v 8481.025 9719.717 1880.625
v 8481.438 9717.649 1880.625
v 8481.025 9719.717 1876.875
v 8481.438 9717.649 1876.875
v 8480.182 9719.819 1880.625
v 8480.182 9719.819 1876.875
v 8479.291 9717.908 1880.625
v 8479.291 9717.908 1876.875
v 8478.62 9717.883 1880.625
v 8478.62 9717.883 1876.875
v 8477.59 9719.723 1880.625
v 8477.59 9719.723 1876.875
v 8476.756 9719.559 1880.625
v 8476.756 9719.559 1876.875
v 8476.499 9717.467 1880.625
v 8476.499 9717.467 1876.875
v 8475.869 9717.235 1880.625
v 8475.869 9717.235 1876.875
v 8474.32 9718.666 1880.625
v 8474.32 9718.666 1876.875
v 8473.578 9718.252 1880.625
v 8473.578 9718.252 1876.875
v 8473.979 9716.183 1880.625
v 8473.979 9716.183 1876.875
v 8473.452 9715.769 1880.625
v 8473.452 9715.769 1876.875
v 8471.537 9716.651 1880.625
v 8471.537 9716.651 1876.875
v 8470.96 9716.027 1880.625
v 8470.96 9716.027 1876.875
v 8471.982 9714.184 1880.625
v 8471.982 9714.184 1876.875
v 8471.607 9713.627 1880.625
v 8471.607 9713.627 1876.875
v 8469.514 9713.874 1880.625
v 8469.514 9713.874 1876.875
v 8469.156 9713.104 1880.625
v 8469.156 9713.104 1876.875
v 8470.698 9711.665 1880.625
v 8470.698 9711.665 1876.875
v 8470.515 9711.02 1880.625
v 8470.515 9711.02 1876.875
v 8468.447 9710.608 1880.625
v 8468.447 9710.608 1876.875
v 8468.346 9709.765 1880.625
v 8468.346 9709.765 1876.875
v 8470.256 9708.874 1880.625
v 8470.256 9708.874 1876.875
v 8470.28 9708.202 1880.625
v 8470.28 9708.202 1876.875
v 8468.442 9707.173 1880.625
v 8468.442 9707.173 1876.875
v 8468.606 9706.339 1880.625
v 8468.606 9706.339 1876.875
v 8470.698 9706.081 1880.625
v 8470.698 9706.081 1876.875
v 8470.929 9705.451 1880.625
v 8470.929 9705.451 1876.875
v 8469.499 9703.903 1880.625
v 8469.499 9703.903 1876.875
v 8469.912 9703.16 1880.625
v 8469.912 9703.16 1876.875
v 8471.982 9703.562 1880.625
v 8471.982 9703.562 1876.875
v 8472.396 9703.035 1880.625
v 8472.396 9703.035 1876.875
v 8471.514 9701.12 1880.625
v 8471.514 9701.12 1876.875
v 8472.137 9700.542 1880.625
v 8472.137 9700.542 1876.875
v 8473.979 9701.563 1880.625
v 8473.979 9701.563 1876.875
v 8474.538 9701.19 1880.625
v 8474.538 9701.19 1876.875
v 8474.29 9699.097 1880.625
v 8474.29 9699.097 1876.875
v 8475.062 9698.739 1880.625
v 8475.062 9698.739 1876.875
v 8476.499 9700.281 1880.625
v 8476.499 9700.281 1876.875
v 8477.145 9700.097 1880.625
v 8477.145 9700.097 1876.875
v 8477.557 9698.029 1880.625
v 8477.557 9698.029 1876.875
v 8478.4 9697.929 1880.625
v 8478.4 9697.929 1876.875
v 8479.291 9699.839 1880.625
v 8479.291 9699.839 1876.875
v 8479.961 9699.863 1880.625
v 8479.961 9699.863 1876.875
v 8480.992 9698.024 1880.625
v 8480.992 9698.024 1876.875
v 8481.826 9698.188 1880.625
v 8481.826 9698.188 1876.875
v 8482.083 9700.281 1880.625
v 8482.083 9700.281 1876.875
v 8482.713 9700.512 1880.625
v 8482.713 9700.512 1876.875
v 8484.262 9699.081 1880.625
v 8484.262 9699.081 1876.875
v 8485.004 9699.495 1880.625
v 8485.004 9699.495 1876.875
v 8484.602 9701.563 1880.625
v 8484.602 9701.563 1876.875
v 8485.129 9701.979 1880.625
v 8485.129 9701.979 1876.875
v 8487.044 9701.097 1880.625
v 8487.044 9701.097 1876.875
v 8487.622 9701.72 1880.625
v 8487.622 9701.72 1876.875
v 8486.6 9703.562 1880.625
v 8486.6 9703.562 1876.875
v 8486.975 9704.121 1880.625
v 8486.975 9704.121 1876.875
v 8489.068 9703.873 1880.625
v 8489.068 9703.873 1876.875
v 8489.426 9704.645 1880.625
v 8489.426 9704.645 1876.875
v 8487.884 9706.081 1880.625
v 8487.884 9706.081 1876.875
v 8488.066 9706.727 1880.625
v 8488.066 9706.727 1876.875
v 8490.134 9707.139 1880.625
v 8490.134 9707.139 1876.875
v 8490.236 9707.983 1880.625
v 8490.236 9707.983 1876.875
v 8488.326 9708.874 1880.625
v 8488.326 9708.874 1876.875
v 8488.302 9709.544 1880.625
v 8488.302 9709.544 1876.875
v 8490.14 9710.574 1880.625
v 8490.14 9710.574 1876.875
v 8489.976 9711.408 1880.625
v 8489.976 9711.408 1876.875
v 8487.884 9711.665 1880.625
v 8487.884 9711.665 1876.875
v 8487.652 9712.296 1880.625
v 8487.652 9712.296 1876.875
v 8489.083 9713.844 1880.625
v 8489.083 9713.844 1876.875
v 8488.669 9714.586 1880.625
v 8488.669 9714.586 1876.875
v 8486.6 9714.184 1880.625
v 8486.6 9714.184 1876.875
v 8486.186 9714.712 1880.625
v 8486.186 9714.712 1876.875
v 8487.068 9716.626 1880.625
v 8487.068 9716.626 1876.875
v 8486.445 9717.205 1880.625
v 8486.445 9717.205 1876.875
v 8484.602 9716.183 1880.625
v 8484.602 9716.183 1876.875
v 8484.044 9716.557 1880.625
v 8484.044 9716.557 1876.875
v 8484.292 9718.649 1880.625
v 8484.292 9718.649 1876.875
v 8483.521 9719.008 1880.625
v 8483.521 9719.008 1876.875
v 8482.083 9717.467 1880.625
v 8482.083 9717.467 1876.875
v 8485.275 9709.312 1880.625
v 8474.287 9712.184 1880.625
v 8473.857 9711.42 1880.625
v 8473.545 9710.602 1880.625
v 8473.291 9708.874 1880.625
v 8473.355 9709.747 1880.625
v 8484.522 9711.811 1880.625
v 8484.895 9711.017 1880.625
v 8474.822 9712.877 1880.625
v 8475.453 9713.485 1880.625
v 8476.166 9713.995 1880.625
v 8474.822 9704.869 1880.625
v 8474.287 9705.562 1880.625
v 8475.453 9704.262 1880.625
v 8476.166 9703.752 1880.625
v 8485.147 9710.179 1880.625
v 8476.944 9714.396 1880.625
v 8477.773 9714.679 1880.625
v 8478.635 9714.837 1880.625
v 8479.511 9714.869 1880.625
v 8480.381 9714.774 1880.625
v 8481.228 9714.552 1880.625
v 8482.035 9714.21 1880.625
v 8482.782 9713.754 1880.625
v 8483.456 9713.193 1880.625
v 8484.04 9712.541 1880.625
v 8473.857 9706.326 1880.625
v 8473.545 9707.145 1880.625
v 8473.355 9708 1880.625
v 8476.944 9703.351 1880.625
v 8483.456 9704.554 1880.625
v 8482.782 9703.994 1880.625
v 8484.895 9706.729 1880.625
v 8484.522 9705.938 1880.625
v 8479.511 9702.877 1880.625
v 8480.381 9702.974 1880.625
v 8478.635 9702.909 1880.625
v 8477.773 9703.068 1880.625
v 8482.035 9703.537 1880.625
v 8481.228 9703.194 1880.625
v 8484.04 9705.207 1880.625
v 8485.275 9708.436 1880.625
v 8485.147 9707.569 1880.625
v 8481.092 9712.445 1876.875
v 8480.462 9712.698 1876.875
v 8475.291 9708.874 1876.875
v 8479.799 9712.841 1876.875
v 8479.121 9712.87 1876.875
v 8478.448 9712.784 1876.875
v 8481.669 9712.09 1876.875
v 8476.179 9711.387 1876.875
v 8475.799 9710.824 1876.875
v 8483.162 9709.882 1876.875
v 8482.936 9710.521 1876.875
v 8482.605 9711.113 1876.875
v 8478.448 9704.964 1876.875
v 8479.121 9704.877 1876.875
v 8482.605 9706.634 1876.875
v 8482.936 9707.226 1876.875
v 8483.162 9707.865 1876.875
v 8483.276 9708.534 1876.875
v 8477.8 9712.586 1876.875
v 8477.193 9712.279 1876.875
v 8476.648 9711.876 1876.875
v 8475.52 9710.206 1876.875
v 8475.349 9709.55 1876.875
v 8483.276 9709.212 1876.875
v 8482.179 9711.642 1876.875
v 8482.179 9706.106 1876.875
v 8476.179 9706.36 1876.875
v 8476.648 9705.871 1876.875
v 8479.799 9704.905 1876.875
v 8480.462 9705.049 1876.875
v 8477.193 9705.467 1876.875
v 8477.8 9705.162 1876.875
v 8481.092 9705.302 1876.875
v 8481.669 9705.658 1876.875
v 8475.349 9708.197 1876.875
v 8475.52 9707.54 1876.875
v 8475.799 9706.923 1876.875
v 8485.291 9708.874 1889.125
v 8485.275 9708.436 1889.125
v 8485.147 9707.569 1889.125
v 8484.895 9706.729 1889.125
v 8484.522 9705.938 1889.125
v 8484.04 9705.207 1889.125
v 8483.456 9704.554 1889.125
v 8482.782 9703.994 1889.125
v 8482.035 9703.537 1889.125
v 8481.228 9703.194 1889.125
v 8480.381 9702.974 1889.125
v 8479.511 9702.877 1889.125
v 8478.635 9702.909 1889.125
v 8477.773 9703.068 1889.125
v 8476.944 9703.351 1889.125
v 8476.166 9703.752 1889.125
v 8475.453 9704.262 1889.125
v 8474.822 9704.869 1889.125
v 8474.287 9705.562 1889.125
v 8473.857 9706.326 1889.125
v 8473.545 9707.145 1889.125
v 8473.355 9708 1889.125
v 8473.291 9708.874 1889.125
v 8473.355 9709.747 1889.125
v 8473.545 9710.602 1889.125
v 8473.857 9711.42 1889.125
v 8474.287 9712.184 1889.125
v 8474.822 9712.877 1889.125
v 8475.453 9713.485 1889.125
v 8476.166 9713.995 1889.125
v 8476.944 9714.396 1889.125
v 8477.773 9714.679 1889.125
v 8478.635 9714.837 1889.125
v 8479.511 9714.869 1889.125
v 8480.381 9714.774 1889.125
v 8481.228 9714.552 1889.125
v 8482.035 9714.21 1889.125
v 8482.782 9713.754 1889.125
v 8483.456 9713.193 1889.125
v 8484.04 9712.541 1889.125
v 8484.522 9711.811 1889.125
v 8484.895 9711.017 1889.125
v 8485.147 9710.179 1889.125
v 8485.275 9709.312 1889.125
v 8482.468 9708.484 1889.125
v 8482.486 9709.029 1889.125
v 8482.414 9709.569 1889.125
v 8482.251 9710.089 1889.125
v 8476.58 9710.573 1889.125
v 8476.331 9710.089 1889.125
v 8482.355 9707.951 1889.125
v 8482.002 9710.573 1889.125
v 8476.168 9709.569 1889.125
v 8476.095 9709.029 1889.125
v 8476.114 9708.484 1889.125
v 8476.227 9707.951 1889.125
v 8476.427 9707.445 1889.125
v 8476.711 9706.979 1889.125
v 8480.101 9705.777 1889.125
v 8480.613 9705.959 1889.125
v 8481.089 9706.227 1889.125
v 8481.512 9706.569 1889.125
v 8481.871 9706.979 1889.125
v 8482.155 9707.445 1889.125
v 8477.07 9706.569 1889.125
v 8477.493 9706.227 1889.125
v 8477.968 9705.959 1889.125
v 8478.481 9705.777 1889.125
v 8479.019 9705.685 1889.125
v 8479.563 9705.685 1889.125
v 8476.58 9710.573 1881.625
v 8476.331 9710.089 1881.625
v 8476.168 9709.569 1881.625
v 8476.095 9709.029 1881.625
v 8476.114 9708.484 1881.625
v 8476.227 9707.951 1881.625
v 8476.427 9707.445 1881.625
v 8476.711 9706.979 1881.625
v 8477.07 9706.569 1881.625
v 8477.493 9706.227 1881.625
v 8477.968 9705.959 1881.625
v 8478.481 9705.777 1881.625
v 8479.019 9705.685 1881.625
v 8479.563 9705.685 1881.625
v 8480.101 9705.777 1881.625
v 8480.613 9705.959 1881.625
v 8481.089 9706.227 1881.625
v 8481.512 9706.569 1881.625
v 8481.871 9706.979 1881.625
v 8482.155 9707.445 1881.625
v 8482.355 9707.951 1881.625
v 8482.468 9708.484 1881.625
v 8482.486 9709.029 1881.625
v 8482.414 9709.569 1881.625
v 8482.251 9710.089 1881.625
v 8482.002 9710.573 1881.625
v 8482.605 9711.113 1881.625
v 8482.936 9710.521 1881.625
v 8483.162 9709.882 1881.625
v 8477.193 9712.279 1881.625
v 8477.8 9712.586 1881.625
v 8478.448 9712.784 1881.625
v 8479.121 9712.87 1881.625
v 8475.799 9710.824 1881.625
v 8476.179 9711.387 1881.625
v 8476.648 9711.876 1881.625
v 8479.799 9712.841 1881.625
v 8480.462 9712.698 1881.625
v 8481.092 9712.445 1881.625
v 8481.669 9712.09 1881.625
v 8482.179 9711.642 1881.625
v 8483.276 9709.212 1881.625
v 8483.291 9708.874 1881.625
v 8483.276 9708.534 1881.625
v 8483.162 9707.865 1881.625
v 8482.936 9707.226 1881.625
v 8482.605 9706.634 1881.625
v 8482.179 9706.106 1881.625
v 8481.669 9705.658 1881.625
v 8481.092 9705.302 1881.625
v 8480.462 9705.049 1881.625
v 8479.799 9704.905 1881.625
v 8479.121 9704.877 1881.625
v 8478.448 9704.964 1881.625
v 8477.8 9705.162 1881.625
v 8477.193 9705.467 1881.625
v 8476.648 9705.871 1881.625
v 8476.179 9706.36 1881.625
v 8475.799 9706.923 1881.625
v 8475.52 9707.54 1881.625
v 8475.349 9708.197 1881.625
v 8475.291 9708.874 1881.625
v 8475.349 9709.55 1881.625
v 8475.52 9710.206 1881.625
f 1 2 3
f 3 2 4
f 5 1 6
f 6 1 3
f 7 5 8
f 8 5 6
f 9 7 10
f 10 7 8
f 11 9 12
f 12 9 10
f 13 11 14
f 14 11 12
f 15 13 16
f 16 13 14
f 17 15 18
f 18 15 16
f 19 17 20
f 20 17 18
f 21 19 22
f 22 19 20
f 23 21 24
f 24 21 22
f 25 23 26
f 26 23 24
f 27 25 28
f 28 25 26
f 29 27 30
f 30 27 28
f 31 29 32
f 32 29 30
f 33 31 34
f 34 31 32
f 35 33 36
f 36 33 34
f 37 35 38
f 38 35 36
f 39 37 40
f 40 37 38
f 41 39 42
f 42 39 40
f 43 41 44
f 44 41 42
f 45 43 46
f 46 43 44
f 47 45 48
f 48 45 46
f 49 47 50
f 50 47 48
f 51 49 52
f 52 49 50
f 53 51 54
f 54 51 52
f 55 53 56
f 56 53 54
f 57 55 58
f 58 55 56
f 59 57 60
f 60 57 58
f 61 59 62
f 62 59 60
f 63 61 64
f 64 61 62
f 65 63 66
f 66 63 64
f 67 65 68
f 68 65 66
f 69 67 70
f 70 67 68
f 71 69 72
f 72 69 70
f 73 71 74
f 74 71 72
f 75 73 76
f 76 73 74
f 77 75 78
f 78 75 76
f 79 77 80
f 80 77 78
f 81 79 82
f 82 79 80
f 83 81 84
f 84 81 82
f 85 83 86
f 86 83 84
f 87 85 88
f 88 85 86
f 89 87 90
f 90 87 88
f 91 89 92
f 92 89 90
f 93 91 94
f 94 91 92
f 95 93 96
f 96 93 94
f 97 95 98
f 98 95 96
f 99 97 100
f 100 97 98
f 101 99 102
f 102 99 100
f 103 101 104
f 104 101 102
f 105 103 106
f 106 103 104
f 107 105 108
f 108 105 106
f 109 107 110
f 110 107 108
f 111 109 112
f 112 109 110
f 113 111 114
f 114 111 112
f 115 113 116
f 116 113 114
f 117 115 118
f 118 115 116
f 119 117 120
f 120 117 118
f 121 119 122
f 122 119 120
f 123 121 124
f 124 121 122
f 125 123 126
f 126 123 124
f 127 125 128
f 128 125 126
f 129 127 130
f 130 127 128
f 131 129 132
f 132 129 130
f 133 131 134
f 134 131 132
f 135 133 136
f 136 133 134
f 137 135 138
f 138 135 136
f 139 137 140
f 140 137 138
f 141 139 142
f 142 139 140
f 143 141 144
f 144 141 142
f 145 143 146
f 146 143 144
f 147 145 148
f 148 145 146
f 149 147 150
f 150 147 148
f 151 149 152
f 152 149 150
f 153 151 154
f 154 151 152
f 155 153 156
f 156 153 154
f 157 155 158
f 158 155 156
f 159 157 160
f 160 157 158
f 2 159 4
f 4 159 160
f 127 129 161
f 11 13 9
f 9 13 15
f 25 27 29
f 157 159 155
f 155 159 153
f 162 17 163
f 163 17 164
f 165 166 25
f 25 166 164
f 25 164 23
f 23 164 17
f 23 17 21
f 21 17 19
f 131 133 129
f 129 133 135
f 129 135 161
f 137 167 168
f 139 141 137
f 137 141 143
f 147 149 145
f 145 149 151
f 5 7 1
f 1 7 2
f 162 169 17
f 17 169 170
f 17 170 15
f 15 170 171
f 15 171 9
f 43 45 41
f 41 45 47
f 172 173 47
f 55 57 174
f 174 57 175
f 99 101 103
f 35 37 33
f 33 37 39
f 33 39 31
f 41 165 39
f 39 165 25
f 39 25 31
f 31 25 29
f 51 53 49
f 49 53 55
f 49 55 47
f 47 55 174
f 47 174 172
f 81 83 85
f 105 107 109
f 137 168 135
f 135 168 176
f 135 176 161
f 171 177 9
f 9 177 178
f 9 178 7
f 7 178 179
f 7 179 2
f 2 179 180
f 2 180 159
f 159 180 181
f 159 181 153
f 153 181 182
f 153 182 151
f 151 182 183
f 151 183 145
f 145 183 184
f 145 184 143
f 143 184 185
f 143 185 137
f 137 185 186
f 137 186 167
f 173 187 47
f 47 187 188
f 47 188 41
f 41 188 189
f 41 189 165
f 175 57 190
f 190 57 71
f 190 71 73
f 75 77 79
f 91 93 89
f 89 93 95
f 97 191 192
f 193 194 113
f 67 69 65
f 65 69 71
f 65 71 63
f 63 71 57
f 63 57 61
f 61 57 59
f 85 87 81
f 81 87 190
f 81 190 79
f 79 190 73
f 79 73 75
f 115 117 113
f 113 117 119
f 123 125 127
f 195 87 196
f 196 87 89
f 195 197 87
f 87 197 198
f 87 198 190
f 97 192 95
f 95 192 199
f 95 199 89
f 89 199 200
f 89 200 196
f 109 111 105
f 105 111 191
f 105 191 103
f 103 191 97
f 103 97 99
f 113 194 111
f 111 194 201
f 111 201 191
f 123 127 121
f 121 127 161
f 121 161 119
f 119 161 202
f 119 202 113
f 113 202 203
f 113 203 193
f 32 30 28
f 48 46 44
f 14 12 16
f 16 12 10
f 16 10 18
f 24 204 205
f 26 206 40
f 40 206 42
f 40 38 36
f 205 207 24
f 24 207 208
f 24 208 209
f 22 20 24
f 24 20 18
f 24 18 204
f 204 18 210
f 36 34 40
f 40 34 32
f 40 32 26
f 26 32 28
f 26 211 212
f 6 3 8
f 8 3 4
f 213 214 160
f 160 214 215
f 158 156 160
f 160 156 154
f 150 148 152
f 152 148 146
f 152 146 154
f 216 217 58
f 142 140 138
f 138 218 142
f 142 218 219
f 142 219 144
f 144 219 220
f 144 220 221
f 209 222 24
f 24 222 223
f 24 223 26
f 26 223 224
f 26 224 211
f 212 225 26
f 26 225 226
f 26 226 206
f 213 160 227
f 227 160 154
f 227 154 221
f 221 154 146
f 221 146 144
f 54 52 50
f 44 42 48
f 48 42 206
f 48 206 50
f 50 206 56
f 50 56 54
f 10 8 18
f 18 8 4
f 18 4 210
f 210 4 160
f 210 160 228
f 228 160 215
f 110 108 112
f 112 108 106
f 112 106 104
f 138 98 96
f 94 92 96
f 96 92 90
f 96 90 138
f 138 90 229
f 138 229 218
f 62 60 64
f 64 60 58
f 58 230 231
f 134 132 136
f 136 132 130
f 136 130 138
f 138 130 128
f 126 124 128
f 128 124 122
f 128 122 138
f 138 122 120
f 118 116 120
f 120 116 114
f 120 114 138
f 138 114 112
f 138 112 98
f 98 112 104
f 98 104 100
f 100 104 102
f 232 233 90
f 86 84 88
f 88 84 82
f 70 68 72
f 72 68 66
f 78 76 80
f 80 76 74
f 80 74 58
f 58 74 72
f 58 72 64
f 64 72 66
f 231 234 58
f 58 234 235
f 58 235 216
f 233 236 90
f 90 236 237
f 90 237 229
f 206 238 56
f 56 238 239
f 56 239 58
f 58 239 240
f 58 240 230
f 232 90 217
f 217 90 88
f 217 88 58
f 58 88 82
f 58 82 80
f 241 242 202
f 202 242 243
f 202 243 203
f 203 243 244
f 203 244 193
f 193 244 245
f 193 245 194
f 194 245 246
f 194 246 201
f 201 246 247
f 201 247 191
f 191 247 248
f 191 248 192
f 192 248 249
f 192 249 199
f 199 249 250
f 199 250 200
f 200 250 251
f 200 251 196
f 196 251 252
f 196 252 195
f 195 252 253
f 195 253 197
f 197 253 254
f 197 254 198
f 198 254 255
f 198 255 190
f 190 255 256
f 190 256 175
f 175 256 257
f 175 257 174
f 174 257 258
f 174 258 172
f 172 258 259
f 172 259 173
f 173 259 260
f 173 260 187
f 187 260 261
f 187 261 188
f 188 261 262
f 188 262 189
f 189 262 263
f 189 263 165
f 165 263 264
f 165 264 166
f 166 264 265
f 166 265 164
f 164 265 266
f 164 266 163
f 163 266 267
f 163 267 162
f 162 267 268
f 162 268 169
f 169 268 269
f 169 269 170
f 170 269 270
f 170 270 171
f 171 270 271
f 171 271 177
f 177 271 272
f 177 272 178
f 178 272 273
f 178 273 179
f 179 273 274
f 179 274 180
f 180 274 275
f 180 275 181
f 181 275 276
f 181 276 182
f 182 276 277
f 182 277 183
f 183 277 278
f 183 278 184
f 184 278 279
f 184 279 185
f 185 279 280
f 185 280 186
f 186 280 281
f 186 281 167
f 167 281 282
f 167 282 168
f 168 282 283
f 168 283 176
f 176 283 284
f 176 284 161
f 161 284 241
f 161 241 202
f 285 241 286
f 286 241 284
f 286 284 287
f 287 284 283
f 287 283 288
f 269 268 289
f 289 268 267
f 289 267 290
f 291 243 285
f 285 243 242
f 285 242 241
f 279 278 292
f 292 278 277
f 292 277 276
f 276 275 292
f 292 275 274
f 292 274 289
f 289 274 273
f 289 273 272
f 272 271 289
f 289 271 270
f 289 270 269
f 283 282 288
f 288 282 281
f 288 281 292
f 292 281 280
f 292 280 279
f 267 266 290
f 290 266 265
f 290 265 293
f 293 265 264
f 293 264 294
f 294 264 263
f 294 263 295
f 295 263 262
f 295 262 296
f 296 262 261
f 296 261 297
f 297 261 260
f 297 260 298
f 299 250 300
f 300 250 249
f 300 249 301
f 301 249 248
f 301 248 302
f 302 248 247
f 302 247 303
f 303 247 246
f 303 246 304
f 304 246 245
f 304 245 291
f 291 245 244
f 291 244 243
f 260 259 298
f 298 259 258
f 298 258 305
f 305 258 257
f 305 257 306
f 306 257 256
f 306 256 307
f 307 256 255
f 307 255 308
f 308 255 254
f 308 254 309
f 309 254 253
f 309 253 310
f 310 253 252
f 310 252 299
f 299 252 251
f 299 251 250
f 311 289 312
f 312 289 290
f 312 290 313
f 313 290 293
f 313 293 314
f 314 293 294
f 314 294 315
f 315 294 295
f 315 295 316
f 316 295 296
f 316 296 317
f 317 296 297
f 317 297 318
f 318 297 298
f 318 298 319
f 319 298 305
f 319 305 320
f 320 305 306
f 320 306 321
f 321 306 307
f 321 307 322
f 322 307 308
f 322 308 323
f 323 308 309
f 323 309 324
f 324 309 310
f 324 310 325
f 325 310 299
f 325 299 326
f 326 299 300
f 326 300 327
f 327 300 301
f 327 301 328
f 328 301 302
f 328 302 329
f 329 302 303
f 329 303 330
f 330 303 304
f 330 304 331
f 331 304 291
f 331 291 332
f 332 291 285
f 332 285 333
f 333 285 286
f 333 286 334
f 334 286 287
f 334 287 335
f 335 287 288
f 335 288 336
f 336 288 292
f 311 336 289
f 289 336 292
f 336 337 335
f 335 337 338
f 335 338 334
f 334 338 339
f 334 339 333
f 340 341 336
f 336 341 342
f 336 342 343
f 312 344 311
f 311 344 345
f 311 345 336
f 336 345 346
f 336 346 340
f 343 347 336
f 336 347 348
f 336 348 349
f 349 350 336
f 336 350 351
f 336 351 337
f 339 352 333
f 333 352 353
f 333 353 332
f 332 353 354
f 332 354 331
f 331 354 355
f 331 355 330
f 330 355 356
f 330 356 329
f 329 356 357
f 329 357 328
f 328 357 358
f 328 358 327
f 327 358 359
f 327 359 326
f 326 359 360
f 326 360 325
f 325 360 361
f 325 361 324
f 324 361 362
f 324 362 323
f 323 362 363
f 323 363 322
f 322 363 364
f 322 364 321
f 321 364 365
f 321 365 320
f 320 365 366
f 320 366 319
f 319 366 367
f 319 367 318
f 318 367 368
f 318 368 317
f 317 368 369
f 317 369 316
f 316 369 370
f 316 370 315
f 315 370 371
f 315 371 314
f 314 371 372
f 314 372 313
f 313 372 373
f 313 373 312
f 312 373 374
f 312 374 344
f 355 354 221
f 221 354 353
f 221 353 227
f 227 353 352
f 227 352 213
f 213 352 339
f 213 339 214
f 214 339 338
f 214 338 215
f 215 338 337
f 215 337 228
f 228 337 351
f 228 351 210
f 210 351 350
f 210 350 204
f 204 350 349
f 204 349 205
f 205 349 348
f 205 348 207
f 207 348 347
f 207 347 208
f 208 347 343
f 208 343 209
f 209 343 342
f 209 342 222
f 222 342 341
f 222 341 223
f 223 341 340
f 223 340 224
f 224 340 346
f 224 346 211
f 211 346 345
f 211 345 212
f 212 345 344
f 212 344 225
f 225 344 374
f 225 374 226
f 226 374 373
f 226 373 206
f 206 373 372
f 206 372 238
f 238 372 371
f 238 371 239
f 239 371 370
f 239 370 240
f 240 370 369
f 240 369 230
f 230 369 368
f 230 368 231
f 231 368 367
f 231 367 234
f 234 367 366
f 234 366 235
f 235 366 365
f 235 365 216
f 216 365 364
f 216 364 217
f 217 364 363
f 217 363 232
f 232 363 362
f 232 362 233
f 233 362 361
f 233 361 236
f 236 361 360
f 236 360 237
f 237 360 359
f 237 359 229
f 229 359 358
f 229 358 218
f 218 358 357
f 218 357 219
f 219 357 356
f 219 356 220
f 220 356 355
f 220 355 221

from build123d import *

# Parameters (mm, degrees)
BOSS_EXTRUDE1_DEPTH = 3750
SCALE1_SCALE        = 0.001
BOSS_EXTRUDE2_DEPTH = 3.75
SKETCH7_R           = 6
BOSS_EXTRUDE4_DEPTH = 8.5
CUT_EXTRUDE2_DEPTH  = 7.5
SKETCH9_R           = 4
CUT_EXTRUDE3_DEPTH  = 4.75


# Read off the part's stored shape, not the designer's step: Imported1
with BuildPart() as part:
    # Sketch1 → Boss-Extrude1 (new body)
    with BuildSketch(Plane.XY):
        Polygon((-1706.06803894, 17555.067062378), (-569.962084293, 15778.41758728), (-1006.988286972, 15208.873748779), (-3063.715457916, 15425.035476685), (-3388.391971588, 14641.19720459), (-1831.166863441, 13219.130516052), (-2105.892896652, 12555.883407593), (-4148.485660553, 12232.358932495), (-4259.226799011, 11391.19720459), (-2387.004852295, 10420.625686646), (-2480.708837509, 9708.873748779), (-4369.967937469, 8867.712020874), (-4259.226799011, 8026.550292969), (-2199.596881866, 7573.616504669), (-2105.892896652, 6861.864089966), (-3713.068246841, 5560.388088226), (-3388.391971588, 4776.549816132), (-1281.714439392, 4872.121334076), (-1006.988286972, 4208.873748779), (-2222.553491592, 2535.776615143), (-1706.06803894, 1862.679600716), (304.090321064, 2500.242710114), (741.116523743, 1930.699110031), (0, 0), (673.097014427, -516.485512257), (2449.747562408, 619.62044239), (3019.291162491, 182.594239712), (2803.129196167, -1874.132990837), (3586.967229843, -2198.8093853), (5009.034156799, -641.584277153), (5672.281742096, -916.310429573), (5995.805263519, -2958.903074265), (6836.967468262, -3069.644212723), (7807.538509369, -1197.422385216), (8519.290924072, -1291.12637043), (9360.452651978, -3180.385351181), (10201.615333557, -3069.644212723), (10654.54864502, -1010.014414787), (11366.300582886, -916.310429573), (12667.777061462, -2523.485660553), (13451.615333557, -2198.8093853), (13356.043815613, -92.131927609), (14019.290924072, 182.594239712), (15692.388534546, -1032.971024513), (16365.48614502, -516.485512257), (15727.922439575, 1493.672847748), (16297.466278076, 1930.699110031), (18228.164672852, 1189.582586288), (18744.649887085, 1862.679600716), (17608.543395996, 3639.330148697), (18045.570373535, 4208.873748779), (20102.296829224, 3992.711782455), (20426.973342896, 4776.549816132), (18869.749069214, 6198.616504669), (19144.47593689, 6861.864089966), (21187.06703186, 7185.388088226), (21297.80960083, 8026.550292969), (19425.586700439, 8997.120857239), (19519.290924072, 9708.873748779), (21408.550262451, 10550.035476685), (21297.80960083, 11391.19720459), (19238.178253174, 11844.130516052), (19144.47593689, 12555.883407593), (20751.649856567, 13857.358932495), (20426.973342896, 14641.19720459), (18320.297241211, 14545.625686646), (18045.570373535, 15208.873748779), (19261.135101318, 16881.971359253), (18744.649887085, 17555.067062378), (16734.491348267, 16917.505264282), (16297.466278076, 17487.049102783), (17038.581848145, 19417.747497559), (16365.48614502, 19934.232711792), (14588.834762573, 18798.126220703), (14019.290924072, 19235.153198242), (14235.452651978, 21291.879653931), (13451.615333557, 21616.556167603), (12029.54864502, 20059.331893921), (11366.300582886, 20334.056854248), (11042.777061462, 22376.649856567), (10201.615333557, 22487.392425537), (9231.043815613, 20615.169525146), (8519.290924072, 20708.873748779), (7678.129196167, 22598.133087158), (6836.967468262, 22487.392425537), (6384.034156799, 20427.761077881), (5672.281742096, 20334.056854248), (4370.805263519, 21941.232681274), (3586.967229843, 21616.556167603), (3682.538747787, 19509.880065918), (3019.291162491, 19235.153198242), (1346.194028854, 20450.717926025), (673.097014427, 19934.232711792), (1310.660123825, 17924.074172974), (741.116523743, 17487.049102783), (-1189.582586288, 18228.164672852), align=None)
    extrude(amount=BOSS_EXTRUDE1_DEPTH)


with BuildPart() as part_1:
    # Scale1: scaled about (8519.290960158, 9708.873493624, 1875)
    add(part.part.scale(SCALE1_SCALE).moved(Location((8510.771669198, 9699.16462013, 1873.125))))


with BuildPart() as body_2:
    # Sketch4 → Boss-Extrude2 (new body)
    with BuildSketch(Plane.XY.offset(1876.875)):
        Polygon((8482.082875407, 9717.46612407), (8483.52052795, 9719.007817674), (8484.291694952, 9718.650324381), (8484.044201424, 9716.556903507), (8484.601498068, 9716.182821727), (8486.44519641, 9717.204800407), (8487.06814831, 9716.626500372), (8486.185865351, 9714.712018515), (8486.600288328, 9714.184031467), (8488.669558431, 9714.586256829), (8489.083316356, 9713.843758089), (8487.65260797, 9712.295618071), (8487.883590672, 9711.665408806), (8489.975877959, 9711.40850823), (8490.139940401, 9710.574491734), (8488.300854292, 9709.544236288), (8488.325786523, 9708.873494079), (8490.236283338, 9707.982614784), (8490.134590722, 9707.138719878), (8488.067149452, 9706.727197584), (8487.883590672, 9706.081579353), (8489.425284275, 9704.64392681), (8489.067790982, 9703.872759808), (8486.974370108, 9704.120253336), (8486.600288328, 9703.562956692), (8487.622267008, 9701.71925835), (8487.043966973, 9701.09630645), (8485.129485116, 9701.978589409), (8484.601498068, 9701.564166432), (8485.00372343, 9699.494896329), (8484.26122469, 9699.081138404), (8482.713084672, 9700.51184679), (8482.082875407, 9700.280864088), (8481.825974831, 9698.188576801), (8480.991958335, 9698.024514359), (8479.961702889, 9699.863600468), (8479.29096068, 9699.838668237), (8478.400081385, 9697.928171422), (8477.556186479, 9698.029864038), (8477.144664185, 9700.097305308), (8476.499045954, 9700.280864088), (8475.061393411, 9698.739170485), (8474.290226409, 9699.096663778), (8474.537719937, 9701.190084652), (8473.980423293, 9701.564166432), (8472.136724951, 9700.542187752), (8471.513773051, 9701.120487787), (8472.39605601, 9703.034969644), (8471.981633033, 9703.562956692), (8469.91236293, 9703.16073133), (8469.498605005, 9703.90323007), (8470.929313391, 9705.451370088), (8470.698330689, 9706.081579353), (8468.606043402, 9706.338479929), (8468.44198096, 9707.172496425), (8470.281067069, 9708.202751871), (8470.256134838, 9708.873494079), (8468.345638023, 9709.764373375), (8468.447330639, 9710.608268281), (8470.514771909, 9711.019790575), (8470.698330689, 9711.665408806), (8469.156637086, 9713.103061349), (8469.514130379, 9713.874228351), (8471.607551253, 9713.626734823), (8471.981633033, 9714.184031467), (8470.959654353, 9716.027729809), (8471.537954388, 9716.650681709), (8473.452436245, 9715.76839875), (8473.980423293, 9716.182821727), (8473.578197931, 9718.25209183), (8474.320696671, 9718.665849755), (8475.868836689, 9717.235141369), (8476.499045954, 9717.46612407), (8476.75594653, 9719.558411358), (8477.589963026, 9719.7224738), (8478.620218472, 9717.883387691), (8479.29096068, 9717.908319922), (8480.181839976, 9719.818816737), (8481.025734882, 9719.71712412), (8481.437257176, 9717.649682851), align=None)
    extrude(amount=BOSS_EXTRUDE2_DEPTH)

    # Sketch7 → Boss-Extrude4 (add)
    with BuildSketch(Plane.XY.offset(1880.625)):
        with Locations(Location((8479.29096068, 9708.873494079, 0), (0, 0, 180))):
            Circle(SKETCH7_R)
    extrude(amount=BOSS_EXTRUDE4_DEPTH)

    # Sketch8 → Cut-Extrude2 (cut)
    with BuildSketch(Plane.XY.offset(1889.125)):
        with BuildLine():
            Line((8476.579872338, 9710.573494079), (8482.002049023, 9710.573494079))
            ThreePointArc((8482.002049023, 9710.573494079), (8479.29096068, 9705.673494079), (8476.579872338, 9710.573494079))
        make_face()
    extrude(amount=-CUT_EXTRUDE2_DEPTH, mode=Mode.SUBTRACT)

    # Sketch9 → Cut-Extrude3 (cut)
    with BuildSketch(Plane(origin=(0, 0, 1876.875), x_dir=(-1, 0, 0), z_dir=(0, 0, -1))):
        with Locations((-8479.29096068, 9708.873494079)):
            Circle(SKETCH9_R)
    extrude(amount=-CUT_EXTRUDE3_DEPTH, mode=Mode.SUBTRACT)


solid = body_2.part
